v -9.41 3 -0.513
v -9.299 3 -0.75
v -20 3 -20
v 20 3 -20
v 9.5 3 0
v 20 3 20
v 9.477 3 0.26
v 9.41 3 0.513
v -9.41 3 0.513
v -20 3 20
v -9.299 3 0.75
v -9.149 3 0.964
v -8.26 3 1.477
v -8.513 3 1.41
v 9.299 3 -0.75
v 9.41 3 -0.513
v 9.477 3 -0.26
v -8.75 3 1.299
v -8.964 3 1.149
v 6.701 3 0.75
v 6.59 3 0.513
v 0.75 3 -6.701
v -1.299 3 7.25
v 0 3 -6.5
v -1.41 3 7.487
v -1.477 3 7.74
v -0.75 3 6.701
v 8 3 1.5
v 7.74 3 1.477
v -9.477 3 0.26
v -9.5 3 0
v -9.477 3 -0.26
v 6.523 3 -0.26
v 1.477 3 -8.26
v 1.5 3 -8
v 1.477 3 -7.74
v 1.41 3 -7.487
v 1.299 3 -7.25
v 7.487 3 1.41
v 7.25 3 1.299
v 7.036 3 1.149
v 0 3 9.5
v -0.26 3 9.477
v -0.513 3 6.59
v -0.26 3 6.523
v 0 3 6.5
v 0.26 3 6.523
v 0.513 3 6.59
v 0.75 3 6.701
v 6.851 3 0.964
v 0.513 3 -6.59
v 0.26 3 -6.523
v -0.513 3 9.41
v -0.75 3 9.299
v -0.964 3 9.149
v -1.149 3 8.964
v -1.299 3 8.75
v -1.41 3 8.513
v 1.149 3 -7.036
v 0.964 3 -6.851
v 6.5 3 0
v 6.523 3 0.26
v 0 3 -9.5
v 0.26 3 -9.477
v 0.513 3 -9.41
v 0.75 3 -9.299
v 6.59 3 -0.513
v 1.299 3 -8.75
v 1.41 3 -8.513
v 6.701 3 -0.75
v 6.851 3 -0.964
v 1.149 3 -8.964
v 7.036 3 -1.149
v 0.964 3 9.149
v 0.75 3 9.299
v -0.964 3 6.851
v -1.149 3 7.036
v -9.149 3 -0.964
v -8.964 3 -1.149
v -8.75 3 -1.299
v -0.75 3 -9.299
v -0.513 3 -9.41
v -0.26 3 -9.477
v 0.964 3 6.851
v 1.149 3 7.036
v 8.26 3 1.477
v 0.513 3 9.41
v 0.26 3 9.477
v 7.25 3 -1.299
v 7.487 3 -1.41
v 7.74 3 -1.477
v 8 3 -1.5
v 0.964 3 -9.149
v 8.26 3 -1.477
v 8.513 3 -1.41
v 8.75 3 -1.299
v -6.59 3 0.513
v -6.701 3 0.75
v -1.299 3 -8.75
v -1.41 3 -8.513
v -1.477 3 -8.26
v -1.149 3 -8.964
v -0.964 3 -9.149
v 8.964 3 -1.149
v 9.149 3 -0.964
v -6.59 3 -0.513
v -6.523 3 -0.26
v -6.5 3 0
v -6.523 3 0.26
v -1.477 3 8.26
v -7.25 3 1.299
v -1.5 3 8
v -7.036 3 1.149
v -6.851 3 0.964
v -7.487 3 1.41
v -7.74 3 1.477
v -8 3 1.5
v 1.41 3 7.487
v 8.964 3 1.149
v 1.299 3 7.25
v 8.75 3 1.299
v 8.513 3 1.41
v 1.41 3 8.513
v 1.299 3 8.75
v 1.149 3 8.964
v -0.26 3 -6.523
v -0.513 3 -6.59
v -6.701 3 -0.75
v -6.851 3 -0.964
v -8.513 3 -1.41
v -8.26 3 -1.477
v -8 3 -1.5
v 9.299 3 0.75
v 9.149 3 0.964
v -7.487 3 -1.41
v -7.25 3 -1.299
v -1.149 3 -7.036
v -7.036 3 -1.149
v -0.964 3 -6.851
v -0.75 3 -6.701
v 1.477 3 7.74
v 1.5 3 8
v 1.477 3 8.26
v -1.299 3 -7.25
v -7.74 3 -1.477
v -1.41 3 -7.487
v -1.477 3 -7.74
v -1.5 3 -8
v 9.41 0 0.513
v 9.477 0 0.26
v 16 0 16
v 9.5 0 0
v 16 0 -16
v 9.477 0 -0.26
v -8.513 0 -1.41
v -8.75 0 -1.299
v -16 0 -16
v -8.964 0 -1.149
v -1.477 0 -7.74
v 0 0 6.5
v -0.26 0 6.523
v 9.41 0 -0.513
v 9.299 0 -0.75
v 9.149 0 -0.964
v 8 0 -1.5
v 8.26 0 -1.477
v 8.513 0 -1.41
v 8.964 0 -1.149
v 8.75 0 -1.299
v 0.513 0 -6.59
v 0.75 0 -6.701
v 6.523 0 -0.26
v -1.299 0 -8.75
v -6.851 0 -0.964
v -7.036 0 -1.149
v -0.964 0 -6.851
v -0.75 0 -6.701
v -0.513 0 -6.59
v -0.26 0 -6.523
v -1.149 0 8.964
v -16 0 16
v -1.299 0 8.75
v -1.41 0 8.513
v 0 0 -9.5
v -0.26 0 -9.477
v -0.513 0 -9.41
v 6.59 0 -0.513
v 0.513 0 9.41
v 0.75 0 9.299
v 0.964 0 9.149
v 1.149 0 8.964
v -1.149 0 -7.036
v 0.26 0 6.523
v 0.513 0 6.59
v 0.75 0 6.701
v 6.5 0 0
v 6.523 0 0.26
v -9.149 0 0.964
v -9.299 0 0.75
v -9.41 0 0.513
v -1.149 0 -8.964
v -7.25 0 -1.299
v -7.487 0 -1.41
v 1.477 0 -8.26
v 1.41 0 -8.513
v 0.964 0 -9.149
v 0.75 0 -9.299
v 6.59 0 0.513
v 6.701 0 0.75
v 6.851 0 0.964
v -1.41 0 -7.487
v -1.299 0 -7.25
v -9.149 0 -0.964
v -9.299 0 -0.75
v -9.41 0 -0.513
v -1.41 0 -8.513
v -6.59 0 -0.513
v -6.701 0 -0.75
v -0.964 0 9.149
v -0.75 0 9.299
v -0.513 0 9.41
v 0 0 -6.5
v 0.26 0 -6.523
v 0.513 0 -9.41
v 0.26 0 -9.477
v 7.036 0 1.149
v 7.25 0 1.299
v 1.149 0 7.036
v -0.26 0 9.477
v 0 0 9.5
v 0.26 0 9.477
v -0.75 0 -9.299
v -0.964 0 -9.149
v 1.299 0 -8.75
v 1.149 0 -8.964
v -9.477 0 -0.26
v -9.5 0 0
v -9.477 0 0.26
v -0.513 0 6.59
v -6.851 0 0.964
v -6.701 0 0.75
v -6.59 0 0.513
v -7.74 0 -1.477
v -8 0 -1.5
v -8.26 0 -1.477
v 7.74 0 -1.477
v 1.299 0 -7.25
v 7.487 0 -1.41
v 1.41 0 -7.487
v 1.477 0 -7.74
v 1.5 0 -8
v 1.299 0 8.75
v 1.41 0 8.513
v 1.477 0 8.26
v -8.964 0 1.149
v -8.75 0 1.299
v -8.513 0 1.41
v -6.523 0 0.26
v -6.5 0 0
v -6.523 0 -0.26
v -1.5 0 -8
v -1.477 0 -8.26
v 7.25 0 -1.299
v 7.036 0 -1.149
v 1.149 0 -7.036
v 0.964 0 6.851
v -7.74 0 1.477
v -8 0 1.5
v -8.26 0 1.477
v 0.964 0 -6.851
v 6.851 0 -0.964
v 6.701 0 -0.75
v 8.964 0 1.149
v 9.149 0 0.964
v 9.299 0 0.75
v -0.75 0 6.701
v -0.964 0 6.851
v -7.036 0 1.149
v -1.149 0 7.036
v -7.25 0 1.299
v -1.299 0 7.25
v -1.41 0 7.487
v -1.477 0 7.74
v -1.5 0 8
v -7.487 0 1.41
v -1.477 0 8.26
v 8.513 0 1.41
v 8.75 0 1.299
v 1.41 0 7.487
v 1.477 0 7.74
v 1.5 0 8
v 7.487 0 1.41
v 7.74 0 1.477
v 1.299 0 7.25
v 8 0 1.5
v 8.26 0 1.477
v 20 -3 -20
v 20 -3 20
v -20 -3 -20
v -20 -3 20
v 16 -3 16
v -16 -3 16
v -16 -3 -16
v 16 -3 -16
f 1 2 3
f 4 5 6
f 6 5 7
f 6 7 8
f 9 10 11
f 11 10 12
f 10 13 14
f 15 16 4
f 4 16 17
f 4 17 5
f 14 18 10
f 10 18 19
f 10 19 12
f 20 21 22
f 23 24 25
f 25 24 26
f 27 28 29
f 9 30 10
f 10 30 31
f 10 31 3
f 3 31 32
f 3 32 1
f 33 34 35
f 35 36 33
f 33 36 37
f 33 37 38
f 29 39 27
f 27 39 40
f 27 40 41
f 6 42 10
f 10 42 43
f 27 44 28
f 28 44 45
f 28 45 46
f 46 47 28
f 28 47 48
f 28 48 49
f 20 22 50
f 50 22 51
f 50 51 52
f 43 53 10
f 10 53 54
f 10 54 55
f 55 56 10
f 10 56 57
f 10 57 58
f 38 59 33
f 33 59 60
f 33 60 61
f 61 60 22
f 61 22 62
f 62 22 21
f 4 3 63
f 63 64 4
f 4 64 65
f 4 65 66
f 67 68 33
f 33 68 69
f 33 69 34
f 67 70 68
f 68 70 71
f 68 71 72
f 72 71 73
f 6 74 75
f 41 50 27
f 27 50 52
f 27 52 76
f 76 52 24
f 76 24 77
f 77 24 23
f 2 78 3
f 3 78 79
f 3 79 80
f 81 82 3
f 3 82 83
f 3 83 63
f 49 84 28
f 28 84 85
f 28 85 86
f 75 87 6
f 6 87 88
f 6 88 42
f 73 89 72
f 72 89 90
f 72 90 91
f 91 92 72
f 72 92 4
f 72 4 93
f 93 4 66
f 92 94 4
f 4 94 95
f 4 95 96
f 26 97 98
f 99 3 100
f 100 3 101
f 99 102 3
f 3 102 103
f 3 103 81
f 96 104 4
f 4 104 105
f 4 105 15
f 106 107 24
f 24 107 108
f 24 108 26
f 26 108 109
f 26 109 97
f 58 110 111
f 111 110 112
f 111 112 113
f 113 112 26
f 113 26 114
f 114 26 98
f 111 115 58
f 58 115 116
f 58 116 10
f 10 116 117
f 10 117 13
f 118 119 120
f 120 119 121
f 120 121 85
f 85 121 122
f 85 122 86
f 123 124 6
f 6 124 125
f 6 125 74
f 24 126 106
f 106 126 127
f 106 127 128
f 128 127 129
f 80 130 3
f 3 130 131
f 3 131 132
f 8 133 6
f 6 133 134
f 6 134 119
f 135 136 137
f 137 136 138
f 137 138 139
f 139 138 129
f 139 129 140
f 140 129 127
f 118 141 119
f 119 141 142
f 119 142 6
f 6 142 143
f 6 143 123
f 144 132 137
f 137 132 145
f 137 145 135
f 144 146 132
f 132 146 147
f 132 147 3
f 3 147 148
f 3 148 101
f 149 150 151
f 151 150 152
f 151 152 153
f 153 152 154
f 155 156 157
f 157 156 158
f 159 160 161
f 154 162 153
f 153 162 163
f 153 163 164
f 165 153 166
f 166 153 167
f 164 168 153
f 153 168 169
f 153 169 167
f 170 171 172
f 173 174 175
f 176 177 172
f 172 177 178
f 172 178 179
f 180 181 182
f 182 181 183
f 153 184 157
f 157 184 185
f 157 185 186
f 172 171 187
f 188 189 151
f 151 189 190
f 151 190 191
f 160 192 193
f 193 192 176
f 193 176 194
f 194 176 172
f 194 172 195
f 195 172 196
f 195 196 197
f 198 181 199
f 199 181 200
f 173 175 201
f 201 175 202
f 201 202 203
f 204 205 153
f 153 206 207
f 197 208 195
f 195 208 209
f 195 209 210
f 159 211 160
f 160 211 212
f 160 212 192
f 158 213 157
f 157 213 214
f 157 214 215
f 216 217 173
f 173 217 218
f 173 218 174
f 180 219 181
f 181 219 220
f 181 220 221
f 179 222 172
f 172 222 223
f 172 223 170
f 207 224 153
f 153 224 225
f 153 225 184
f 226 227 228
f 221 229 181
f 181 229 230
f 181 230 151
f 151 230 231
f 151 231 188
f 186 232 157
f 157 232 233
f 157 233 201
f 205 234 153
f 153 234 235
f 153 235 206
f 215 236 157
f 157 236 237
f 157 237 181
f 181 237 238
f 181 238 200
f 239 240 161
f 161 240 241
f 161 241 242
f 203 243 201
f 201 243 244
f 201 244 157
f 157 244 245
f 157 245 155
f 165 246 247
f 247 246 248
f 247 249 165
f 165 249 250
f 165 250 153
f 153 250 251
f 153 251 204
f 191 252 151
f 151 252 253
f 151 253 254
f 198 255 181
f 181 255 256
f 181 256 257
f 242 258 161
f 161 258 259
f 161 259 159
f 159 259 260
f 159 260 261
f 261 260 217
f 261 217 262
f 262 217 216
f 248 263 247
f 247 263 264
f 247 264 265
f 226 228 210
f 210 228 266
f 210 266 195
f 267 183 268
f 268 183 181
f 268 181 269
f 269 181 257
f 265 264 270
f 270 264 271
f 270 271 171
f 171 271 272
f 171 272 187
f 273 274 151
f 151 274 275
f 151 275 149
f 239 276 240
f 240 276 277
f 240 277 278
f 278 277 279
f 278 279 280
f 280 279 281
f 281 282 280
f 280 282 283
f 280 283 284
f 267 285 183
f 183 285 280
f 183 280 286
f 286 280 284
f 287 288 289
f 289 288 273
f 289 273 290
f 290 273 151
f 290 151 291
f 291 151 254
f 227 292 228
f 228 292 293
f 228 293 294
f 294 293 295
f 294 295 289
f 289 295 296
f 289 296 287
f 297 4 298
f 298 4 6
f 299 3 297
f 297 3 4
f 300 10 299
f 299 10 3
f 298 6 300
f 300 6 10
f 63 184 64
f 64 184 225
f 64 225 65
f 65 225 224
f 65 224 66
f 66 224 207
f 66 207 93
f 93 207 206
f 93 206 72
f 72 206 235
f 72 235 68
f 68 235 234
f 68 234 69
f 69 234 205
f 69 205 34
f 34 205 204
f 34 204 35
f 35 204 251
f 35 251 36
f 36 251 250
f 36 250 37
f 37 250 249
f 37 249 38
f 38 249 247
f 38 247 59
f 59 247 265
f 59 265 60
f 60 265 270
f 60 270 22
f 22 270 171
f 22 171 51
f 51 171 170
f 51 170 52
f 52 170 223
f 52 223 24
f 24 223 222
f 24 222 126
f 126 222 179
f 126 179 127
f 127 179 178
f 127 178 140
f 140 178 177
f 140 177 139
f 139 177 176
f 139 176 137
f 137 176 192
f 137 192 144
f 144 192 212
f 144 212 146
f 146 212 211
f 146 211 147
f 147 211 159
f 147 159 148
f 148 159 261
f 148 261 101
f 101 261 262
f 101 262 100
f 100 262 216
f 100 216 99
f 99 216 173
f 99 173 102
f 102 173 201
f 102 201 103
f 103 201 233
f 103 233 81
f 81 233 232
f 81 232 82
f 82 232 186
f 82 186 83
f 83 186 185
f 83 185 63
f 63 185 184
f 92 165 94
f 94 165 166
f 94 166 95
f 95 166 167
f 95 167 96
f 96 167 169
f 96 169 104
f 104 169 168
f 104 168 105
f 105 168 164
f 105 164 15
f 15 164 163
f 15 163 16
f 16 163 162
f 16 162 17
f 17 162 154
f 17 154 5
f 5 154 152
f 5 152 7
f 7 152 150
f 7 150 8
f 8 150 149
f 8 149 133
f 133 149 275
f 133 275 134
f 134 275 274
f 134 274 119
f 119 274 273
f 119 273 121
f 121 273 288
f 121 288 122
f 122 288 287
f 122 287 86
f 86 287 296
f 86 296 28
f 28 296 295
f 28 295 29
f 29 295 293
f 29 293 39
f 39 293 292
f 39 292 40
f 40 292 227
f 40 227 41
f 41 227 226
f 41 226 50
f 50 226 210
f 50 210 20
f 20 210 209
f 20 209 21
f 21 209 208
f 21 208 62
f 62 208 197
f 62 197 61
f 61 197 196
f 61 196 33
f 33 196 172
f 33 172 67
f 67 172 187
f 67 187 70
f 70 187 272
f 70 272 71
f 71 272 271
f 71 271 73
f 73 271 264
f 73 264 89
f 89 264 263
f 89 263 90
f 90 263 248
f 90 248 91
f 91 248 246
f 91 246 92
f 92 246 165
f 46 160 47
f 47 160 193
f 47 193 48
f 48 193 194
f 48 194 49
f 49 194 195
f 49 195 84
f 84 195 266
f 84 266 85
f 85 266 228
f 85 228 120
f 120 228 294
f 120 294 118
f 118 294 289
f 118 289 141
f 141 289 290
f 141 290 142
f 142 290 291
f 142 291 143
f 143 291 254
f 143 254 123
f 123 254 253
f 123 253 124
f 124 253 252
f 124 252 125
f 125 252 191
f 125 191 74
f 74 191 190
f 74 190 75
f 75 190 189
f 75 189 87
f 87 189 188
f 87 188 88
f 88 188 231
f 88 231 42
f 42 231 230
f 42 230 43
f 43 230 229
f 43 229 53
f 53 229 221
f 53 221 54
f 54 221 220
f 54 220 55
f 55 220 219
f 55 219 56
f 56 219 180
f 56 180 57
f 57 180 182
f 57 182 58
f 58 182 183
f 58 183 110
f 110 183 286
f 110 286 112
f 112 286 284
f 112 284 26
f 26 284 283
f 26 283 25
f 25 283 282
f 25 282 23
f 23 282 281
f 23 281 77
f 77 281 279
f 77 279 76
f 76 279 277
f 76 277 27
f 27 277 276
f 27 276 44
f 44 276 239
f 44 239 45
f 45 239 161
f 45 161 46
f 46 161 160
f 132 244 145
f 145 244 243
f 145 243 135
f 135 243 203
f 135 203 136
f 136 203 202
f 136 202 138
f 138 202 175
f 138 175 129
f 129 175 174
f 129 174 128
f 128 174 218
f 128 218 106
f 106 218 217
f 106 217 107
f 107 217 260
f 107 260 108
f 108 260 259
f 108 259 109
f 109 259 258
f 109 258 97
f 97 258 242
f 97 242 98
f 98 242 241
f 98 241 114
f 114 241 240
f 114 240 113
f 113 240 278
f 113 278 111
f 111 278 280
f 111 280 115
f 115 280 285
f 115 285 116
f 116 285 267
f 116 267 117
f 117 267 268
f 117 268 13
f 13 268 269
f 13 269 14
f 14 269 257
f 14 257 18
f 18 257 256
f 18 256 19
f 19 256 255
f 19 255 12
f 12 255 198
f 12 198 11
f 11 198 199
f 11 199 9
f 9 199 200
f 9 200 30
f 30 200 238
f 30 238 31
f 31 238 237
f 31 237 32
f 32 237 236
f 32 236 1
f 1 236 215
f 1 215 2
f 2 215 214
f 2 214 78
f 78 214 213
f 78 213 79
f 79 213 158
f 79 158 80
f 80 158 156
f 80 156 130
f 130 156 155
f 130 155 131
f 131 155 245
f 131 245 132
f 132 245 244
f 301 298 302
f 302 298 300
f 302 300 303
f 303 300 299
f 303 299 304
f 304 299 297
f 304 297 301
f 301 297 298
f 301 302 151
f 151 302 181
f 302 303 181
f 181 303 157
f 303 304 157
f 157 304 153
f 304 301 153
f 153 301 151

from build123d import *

# Parameters (mm, degrees)
SKETCH1_W           = 40
SKETCH1_H           = 40
SKETCH1_R           = 1.5
BOSS_EXTRUDE1_DEPTH = 3
SKETCH2_W           = 40
SKETCH2_H           = 40
SKETCH2_W_2         = 32
SKETCH2_H_2         = 32
BOSS_EXTRUDE2_DEPTH = 3


with BuildPart() as part:
    # Sketch1 → Boss-Extrude1 (new body)
    with BuildSketch(Plane(origin=(0, 0, 0), x_dir=(1, 0, 0), z_dir=(0, 1, 0))):
        Rectangle(SKETCH1_W, SKETCH1_H)
        with Locations((0, 8)):
            Circle(SKETCH1_R, mode=Mode.SUBTRACT)
        with Locations((8, 0)):
            Circle(SKETCH1_R, mode=Mode.SUBTRACT)
        with Locations((0, -8)):
            Circle(SKETCH1_R, mode=Mode.SUBTRACT)
        with Locations((-8, 0)):
            Circle(SKETCH1_R, mode=Mode.SUBTRACT)
    extrude(amount=BOSS_EXTRUDE1_DEPTH)

    # Sketch2 → Boss-Extrude2 (add)
    with BuildSketch(Plane.XZ):
        Rectangle(SKETCH2_W, SKETCH2_H)
        Rectangle(SKETCH2_W_2, SKETCH2_H_2, mode=Mode.SUBTRACT)
    extrude(amount=BOSS_EXTRUDE2_DEPTH)


solid = part.part
